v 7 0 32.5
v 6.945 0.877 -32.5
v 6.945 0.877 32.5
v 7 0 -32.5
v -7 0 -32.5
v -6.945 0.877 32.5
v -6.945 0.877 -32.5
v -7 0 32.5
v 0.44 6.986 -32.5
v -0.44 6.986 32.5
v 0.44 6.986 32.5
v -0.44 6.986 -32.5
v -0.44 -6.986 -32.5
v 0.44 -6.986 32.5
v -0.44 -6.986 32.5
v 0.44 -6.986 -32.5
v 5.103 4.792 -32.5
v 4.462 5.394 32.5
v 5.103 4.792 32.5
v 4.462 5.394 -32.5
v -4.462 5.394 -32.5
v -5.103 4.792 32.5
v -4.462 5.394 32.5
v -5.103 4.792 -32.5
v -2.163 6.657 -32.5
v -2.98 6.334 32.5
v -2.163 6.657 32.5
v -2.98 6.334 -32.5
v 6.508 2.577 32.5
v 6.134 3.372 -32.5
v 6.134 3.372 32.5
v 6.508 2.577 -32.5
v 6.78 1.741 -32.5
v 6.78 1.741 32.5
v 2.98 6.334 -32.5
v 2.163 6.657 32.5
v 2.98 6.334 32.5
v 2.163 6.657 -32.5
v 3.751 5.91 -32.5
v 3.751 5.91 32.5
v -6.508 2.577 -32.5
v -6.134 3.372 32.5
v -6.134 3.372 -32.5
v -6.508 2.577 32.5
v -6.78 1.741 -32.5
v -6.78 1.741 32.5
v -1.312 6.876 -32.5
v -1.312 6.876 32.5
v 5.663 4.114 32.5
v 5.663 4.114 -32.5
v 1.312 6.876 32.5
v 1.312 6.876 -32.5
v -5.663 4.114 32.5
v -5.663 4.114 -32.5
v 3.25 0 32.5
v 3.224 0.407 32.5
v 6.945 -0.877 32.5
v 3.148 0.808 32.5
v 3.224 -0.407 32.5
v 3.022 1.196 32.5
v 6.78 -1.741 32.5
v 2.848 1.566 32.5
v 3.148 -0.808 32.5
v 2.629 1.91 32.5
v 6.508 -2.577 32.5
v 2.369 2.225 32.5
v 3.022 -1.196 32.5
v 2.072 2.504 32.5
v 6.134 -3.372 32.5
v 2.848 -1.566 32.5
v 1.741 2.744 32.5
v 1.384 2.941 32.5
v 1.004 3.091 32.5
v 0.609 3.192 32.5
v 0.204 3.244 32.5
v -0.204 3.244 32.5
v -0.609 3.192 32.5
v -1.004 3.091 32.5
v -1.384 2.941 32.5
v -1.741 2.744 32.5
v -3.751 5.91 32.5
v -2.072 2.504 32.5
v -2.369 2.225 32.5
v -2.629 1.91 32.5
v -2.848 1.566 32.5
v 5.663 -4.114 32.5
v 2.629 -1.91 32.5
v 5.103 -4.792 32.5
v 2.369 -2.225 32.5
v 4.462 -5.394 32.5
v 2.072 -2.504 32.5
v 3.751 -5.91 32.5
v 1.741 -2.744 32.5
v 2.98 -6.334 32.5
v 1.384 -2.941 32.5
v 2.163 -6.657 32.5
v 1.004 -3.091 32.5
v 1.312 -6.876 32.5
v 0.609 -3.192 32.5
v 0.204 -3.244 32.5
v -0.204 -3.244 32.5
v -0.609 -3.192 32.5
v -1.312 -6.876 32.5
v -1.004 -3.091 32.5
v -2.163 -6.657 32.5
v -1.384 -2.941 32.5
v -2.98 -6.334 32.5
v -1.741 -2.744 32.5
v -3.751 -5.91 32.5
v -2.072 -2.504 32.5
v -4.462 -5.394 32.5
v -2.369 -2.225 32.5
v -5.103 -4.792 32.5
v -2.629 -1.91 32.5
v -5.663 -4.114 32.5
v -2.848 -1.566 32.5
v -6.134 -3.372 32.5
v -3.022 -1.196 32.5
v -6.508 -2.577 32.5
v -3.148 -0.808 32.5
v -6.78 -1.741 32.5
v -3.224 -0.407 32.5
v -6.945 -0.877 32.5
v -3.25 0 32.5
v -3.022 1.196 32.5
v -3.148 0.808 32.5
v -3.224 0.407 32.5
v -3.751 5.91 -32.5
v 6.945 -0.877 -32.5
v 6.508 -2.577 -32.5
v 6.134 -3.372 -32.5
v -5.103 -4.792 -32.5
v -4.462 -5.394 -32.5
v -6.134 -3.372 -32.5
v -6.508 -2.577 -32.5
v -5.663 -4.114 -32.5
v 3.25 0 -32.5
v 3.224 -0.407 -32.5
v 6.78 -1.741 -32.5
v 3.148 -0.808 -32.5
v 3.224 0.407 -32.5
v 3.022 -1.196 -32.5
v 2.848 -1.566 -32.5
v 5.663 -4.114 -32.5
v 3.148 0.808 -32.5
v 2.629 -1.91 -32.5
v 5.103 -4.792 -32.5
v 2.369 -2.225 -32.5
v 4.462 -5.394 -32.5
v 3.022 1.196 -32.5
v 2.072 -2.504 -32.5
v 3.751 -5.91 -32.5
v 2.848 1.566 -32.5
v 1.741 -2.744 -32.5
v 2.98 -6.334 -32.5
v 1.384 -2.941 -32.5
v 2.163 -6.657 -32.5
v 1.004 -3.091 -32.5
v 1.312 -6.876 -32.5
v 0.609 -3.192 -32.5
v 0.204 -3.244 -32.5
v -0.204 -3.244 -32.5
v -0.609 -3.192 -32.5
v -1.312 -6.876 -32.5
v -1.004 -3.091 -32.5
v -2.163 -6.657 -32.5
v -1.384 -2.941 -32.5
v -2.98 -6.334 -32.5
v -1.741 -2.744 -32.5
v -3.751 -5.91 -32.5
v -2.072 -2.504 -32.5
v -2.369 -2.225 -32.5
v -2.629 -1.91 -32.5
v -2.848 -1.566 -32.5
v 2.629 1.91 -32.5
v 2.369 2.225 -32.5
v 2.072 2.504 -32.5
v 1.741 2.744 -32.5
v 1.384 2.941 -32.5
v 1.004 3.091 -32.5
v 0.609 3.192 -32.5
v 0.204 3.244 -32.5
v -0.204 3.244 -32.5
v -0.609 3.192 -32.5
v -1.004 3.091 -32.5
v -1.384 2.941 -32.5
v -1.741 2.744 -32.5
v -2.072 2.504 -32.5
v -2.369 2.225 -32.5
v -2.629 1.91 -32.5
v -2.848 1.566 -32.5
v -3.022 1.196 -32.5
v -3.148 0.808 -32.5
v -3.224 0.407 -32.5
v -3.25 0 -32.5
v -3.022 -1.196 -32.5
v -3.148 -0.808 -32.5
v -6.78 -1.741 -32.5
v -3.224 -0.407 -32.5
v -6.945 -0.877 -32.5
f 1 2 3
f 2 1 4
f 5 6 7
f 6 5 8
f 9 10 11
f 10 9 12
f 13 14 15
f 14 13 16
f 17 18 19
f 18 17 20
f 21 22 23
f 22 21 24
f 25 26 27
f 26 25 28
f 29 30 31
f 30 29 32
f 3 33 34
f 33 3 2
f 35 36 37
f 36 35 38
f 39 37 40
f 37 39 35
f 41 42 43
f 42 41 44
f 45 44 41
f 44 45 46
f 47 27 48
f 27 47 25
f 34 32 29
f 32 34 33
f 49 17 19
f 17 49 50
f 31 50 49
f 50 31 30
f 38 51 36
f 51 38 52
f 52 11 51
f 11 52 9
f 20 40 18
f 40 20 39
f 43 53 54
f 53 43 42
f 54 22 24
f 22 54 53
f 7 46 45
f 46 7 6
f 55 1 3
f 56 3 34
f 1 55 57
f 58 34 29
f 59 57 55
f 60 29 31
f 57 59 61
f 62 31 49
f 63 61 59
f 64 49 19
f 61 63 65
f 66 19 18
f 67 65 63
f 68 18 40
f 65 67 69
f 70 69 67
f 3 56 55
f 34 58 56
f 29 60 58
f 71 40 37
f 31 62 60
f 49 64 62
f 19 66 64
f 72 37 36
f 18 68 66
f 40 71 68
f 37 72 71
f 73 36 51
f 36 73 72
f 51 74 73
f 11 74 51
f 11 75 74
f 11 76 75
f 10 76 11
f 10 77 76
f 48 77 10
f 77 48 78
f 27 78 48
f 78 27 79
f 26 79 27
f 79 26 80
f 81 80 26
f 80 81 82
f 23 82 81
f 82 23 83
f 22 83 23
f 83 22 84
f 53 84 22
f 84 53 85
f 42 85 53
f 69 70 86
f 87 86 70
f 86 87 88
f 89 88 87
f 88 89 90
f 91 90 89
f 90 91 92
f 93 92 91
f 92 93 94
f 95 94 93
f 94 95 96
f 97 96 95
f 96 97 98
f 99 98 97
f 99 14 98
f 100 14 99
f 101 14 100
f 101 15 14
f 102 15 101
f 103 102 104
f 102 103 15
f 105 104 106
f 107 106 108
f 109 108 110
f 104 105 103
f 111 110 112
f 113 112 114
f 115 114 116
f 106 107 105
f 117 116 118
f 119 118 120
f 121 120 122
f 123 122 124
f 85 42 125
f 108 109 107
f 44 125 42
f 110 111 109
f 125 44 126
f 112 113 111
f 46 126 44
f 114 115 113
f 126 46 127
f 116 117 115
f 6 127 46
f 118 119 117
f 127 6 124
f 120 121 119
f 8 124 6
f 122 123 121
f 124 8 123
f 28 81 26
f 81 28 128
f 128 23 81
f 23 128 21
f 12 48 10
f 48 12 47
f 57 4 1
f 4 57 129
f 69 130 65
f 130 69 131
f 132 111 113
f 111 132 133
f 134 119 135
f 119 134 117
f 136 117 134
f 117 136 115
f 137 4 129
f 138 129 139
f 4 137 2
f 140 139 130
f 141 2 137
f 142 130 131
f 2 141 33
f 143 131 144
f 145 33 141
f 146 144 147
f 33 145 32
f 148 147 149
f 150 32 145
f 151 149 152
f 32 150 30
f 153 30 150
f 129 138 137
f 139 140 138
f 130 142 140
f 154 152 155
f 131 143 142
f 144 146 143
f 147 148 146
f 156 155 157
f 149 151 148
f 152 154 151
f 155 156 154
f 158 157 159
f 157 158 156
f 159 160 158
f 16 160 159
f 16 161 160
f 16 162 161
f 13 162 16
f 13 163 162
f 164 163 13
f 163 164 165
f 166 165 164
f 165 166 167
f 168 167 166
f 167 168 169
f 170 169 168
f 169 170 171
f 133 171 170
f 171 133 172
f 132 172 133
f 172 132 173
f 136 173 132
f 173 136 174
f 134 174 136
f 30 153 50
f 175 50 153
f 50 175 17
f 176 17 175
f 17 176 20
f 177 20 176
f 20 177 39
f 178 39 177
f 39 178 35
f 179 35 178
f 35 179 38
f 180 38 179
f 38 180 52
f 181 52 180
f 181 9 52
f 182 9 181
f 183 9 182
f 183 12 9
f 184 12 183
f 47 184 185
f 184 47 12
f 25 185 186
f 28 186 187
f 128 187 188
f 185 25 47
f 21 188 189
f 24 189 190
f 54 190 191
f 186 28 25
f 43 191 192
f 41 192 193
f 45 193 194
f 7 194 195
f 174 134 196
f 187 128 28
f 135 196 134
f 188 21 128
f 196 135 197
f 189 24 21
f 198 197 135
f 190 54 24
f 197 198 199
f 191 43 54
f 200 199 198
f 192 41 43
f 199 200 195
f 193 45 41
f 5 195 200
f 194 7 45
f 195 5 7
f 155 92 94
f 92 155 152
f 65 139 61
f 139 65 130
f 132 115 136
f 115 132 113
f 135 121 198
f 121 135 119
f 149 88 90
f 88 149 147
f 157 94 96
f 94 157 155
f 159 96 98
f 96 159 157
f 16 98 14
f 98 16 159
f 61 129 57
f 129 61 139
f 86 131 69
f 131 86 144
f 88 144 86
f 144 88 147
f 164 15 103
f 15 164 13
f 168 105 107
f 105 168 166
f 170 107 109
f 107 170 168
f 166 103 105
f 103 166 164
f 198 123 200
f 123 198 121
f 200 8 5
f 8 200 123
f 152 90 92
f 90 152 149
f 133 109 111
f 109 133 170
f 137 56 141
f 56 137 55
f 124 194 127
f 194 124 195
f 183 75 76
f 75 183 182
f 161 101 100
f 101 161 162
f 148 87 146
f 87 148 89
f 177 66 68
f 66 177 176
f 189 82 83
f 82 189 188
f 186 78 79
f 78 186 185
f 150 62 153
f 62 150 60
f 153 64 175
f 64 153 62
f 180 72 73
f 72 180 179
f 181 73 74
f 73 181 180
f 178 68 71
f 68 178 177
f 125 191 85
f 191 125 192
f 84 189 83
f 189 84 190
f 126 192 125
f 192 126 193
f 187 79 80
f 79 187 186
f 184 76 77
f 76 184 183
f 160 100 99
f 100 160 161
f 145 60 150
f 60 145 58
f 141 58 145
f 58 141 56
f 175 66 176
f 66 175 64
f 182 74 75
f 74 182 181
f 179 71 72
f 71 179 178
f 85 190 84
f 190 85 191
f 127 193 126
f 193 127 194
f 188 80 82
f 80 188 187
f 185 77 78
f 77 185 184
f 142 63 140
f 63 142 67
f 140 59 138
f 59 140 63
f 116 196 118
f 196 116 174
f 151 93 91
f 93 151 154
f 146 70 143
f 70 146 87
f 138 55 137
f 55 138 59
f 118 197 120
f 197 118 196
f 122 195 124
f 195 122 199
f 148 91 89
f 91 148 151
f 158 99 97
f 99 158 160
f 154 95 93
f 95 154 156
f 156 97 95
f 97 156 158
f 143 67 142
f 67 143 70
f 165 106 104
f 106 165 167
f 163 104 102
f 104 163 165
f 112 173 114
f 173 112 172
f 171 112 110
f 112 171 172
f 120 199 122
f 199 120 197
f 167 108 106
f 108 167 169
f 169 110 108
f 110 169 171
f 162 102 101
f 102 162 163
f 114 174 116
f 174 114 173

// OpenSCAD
$fn = 50;


difference() {
	union() {
		translate(v = [0, 0, -32.5000000000]) {
			cylinder(h = 65, r = 7.0000000000);
		}
	}
	union() {
		translate(v = [0, 0, -100.0000000000]) {
			cylinder(h = 200, r = 3.2500000000);
		}
	}
}
